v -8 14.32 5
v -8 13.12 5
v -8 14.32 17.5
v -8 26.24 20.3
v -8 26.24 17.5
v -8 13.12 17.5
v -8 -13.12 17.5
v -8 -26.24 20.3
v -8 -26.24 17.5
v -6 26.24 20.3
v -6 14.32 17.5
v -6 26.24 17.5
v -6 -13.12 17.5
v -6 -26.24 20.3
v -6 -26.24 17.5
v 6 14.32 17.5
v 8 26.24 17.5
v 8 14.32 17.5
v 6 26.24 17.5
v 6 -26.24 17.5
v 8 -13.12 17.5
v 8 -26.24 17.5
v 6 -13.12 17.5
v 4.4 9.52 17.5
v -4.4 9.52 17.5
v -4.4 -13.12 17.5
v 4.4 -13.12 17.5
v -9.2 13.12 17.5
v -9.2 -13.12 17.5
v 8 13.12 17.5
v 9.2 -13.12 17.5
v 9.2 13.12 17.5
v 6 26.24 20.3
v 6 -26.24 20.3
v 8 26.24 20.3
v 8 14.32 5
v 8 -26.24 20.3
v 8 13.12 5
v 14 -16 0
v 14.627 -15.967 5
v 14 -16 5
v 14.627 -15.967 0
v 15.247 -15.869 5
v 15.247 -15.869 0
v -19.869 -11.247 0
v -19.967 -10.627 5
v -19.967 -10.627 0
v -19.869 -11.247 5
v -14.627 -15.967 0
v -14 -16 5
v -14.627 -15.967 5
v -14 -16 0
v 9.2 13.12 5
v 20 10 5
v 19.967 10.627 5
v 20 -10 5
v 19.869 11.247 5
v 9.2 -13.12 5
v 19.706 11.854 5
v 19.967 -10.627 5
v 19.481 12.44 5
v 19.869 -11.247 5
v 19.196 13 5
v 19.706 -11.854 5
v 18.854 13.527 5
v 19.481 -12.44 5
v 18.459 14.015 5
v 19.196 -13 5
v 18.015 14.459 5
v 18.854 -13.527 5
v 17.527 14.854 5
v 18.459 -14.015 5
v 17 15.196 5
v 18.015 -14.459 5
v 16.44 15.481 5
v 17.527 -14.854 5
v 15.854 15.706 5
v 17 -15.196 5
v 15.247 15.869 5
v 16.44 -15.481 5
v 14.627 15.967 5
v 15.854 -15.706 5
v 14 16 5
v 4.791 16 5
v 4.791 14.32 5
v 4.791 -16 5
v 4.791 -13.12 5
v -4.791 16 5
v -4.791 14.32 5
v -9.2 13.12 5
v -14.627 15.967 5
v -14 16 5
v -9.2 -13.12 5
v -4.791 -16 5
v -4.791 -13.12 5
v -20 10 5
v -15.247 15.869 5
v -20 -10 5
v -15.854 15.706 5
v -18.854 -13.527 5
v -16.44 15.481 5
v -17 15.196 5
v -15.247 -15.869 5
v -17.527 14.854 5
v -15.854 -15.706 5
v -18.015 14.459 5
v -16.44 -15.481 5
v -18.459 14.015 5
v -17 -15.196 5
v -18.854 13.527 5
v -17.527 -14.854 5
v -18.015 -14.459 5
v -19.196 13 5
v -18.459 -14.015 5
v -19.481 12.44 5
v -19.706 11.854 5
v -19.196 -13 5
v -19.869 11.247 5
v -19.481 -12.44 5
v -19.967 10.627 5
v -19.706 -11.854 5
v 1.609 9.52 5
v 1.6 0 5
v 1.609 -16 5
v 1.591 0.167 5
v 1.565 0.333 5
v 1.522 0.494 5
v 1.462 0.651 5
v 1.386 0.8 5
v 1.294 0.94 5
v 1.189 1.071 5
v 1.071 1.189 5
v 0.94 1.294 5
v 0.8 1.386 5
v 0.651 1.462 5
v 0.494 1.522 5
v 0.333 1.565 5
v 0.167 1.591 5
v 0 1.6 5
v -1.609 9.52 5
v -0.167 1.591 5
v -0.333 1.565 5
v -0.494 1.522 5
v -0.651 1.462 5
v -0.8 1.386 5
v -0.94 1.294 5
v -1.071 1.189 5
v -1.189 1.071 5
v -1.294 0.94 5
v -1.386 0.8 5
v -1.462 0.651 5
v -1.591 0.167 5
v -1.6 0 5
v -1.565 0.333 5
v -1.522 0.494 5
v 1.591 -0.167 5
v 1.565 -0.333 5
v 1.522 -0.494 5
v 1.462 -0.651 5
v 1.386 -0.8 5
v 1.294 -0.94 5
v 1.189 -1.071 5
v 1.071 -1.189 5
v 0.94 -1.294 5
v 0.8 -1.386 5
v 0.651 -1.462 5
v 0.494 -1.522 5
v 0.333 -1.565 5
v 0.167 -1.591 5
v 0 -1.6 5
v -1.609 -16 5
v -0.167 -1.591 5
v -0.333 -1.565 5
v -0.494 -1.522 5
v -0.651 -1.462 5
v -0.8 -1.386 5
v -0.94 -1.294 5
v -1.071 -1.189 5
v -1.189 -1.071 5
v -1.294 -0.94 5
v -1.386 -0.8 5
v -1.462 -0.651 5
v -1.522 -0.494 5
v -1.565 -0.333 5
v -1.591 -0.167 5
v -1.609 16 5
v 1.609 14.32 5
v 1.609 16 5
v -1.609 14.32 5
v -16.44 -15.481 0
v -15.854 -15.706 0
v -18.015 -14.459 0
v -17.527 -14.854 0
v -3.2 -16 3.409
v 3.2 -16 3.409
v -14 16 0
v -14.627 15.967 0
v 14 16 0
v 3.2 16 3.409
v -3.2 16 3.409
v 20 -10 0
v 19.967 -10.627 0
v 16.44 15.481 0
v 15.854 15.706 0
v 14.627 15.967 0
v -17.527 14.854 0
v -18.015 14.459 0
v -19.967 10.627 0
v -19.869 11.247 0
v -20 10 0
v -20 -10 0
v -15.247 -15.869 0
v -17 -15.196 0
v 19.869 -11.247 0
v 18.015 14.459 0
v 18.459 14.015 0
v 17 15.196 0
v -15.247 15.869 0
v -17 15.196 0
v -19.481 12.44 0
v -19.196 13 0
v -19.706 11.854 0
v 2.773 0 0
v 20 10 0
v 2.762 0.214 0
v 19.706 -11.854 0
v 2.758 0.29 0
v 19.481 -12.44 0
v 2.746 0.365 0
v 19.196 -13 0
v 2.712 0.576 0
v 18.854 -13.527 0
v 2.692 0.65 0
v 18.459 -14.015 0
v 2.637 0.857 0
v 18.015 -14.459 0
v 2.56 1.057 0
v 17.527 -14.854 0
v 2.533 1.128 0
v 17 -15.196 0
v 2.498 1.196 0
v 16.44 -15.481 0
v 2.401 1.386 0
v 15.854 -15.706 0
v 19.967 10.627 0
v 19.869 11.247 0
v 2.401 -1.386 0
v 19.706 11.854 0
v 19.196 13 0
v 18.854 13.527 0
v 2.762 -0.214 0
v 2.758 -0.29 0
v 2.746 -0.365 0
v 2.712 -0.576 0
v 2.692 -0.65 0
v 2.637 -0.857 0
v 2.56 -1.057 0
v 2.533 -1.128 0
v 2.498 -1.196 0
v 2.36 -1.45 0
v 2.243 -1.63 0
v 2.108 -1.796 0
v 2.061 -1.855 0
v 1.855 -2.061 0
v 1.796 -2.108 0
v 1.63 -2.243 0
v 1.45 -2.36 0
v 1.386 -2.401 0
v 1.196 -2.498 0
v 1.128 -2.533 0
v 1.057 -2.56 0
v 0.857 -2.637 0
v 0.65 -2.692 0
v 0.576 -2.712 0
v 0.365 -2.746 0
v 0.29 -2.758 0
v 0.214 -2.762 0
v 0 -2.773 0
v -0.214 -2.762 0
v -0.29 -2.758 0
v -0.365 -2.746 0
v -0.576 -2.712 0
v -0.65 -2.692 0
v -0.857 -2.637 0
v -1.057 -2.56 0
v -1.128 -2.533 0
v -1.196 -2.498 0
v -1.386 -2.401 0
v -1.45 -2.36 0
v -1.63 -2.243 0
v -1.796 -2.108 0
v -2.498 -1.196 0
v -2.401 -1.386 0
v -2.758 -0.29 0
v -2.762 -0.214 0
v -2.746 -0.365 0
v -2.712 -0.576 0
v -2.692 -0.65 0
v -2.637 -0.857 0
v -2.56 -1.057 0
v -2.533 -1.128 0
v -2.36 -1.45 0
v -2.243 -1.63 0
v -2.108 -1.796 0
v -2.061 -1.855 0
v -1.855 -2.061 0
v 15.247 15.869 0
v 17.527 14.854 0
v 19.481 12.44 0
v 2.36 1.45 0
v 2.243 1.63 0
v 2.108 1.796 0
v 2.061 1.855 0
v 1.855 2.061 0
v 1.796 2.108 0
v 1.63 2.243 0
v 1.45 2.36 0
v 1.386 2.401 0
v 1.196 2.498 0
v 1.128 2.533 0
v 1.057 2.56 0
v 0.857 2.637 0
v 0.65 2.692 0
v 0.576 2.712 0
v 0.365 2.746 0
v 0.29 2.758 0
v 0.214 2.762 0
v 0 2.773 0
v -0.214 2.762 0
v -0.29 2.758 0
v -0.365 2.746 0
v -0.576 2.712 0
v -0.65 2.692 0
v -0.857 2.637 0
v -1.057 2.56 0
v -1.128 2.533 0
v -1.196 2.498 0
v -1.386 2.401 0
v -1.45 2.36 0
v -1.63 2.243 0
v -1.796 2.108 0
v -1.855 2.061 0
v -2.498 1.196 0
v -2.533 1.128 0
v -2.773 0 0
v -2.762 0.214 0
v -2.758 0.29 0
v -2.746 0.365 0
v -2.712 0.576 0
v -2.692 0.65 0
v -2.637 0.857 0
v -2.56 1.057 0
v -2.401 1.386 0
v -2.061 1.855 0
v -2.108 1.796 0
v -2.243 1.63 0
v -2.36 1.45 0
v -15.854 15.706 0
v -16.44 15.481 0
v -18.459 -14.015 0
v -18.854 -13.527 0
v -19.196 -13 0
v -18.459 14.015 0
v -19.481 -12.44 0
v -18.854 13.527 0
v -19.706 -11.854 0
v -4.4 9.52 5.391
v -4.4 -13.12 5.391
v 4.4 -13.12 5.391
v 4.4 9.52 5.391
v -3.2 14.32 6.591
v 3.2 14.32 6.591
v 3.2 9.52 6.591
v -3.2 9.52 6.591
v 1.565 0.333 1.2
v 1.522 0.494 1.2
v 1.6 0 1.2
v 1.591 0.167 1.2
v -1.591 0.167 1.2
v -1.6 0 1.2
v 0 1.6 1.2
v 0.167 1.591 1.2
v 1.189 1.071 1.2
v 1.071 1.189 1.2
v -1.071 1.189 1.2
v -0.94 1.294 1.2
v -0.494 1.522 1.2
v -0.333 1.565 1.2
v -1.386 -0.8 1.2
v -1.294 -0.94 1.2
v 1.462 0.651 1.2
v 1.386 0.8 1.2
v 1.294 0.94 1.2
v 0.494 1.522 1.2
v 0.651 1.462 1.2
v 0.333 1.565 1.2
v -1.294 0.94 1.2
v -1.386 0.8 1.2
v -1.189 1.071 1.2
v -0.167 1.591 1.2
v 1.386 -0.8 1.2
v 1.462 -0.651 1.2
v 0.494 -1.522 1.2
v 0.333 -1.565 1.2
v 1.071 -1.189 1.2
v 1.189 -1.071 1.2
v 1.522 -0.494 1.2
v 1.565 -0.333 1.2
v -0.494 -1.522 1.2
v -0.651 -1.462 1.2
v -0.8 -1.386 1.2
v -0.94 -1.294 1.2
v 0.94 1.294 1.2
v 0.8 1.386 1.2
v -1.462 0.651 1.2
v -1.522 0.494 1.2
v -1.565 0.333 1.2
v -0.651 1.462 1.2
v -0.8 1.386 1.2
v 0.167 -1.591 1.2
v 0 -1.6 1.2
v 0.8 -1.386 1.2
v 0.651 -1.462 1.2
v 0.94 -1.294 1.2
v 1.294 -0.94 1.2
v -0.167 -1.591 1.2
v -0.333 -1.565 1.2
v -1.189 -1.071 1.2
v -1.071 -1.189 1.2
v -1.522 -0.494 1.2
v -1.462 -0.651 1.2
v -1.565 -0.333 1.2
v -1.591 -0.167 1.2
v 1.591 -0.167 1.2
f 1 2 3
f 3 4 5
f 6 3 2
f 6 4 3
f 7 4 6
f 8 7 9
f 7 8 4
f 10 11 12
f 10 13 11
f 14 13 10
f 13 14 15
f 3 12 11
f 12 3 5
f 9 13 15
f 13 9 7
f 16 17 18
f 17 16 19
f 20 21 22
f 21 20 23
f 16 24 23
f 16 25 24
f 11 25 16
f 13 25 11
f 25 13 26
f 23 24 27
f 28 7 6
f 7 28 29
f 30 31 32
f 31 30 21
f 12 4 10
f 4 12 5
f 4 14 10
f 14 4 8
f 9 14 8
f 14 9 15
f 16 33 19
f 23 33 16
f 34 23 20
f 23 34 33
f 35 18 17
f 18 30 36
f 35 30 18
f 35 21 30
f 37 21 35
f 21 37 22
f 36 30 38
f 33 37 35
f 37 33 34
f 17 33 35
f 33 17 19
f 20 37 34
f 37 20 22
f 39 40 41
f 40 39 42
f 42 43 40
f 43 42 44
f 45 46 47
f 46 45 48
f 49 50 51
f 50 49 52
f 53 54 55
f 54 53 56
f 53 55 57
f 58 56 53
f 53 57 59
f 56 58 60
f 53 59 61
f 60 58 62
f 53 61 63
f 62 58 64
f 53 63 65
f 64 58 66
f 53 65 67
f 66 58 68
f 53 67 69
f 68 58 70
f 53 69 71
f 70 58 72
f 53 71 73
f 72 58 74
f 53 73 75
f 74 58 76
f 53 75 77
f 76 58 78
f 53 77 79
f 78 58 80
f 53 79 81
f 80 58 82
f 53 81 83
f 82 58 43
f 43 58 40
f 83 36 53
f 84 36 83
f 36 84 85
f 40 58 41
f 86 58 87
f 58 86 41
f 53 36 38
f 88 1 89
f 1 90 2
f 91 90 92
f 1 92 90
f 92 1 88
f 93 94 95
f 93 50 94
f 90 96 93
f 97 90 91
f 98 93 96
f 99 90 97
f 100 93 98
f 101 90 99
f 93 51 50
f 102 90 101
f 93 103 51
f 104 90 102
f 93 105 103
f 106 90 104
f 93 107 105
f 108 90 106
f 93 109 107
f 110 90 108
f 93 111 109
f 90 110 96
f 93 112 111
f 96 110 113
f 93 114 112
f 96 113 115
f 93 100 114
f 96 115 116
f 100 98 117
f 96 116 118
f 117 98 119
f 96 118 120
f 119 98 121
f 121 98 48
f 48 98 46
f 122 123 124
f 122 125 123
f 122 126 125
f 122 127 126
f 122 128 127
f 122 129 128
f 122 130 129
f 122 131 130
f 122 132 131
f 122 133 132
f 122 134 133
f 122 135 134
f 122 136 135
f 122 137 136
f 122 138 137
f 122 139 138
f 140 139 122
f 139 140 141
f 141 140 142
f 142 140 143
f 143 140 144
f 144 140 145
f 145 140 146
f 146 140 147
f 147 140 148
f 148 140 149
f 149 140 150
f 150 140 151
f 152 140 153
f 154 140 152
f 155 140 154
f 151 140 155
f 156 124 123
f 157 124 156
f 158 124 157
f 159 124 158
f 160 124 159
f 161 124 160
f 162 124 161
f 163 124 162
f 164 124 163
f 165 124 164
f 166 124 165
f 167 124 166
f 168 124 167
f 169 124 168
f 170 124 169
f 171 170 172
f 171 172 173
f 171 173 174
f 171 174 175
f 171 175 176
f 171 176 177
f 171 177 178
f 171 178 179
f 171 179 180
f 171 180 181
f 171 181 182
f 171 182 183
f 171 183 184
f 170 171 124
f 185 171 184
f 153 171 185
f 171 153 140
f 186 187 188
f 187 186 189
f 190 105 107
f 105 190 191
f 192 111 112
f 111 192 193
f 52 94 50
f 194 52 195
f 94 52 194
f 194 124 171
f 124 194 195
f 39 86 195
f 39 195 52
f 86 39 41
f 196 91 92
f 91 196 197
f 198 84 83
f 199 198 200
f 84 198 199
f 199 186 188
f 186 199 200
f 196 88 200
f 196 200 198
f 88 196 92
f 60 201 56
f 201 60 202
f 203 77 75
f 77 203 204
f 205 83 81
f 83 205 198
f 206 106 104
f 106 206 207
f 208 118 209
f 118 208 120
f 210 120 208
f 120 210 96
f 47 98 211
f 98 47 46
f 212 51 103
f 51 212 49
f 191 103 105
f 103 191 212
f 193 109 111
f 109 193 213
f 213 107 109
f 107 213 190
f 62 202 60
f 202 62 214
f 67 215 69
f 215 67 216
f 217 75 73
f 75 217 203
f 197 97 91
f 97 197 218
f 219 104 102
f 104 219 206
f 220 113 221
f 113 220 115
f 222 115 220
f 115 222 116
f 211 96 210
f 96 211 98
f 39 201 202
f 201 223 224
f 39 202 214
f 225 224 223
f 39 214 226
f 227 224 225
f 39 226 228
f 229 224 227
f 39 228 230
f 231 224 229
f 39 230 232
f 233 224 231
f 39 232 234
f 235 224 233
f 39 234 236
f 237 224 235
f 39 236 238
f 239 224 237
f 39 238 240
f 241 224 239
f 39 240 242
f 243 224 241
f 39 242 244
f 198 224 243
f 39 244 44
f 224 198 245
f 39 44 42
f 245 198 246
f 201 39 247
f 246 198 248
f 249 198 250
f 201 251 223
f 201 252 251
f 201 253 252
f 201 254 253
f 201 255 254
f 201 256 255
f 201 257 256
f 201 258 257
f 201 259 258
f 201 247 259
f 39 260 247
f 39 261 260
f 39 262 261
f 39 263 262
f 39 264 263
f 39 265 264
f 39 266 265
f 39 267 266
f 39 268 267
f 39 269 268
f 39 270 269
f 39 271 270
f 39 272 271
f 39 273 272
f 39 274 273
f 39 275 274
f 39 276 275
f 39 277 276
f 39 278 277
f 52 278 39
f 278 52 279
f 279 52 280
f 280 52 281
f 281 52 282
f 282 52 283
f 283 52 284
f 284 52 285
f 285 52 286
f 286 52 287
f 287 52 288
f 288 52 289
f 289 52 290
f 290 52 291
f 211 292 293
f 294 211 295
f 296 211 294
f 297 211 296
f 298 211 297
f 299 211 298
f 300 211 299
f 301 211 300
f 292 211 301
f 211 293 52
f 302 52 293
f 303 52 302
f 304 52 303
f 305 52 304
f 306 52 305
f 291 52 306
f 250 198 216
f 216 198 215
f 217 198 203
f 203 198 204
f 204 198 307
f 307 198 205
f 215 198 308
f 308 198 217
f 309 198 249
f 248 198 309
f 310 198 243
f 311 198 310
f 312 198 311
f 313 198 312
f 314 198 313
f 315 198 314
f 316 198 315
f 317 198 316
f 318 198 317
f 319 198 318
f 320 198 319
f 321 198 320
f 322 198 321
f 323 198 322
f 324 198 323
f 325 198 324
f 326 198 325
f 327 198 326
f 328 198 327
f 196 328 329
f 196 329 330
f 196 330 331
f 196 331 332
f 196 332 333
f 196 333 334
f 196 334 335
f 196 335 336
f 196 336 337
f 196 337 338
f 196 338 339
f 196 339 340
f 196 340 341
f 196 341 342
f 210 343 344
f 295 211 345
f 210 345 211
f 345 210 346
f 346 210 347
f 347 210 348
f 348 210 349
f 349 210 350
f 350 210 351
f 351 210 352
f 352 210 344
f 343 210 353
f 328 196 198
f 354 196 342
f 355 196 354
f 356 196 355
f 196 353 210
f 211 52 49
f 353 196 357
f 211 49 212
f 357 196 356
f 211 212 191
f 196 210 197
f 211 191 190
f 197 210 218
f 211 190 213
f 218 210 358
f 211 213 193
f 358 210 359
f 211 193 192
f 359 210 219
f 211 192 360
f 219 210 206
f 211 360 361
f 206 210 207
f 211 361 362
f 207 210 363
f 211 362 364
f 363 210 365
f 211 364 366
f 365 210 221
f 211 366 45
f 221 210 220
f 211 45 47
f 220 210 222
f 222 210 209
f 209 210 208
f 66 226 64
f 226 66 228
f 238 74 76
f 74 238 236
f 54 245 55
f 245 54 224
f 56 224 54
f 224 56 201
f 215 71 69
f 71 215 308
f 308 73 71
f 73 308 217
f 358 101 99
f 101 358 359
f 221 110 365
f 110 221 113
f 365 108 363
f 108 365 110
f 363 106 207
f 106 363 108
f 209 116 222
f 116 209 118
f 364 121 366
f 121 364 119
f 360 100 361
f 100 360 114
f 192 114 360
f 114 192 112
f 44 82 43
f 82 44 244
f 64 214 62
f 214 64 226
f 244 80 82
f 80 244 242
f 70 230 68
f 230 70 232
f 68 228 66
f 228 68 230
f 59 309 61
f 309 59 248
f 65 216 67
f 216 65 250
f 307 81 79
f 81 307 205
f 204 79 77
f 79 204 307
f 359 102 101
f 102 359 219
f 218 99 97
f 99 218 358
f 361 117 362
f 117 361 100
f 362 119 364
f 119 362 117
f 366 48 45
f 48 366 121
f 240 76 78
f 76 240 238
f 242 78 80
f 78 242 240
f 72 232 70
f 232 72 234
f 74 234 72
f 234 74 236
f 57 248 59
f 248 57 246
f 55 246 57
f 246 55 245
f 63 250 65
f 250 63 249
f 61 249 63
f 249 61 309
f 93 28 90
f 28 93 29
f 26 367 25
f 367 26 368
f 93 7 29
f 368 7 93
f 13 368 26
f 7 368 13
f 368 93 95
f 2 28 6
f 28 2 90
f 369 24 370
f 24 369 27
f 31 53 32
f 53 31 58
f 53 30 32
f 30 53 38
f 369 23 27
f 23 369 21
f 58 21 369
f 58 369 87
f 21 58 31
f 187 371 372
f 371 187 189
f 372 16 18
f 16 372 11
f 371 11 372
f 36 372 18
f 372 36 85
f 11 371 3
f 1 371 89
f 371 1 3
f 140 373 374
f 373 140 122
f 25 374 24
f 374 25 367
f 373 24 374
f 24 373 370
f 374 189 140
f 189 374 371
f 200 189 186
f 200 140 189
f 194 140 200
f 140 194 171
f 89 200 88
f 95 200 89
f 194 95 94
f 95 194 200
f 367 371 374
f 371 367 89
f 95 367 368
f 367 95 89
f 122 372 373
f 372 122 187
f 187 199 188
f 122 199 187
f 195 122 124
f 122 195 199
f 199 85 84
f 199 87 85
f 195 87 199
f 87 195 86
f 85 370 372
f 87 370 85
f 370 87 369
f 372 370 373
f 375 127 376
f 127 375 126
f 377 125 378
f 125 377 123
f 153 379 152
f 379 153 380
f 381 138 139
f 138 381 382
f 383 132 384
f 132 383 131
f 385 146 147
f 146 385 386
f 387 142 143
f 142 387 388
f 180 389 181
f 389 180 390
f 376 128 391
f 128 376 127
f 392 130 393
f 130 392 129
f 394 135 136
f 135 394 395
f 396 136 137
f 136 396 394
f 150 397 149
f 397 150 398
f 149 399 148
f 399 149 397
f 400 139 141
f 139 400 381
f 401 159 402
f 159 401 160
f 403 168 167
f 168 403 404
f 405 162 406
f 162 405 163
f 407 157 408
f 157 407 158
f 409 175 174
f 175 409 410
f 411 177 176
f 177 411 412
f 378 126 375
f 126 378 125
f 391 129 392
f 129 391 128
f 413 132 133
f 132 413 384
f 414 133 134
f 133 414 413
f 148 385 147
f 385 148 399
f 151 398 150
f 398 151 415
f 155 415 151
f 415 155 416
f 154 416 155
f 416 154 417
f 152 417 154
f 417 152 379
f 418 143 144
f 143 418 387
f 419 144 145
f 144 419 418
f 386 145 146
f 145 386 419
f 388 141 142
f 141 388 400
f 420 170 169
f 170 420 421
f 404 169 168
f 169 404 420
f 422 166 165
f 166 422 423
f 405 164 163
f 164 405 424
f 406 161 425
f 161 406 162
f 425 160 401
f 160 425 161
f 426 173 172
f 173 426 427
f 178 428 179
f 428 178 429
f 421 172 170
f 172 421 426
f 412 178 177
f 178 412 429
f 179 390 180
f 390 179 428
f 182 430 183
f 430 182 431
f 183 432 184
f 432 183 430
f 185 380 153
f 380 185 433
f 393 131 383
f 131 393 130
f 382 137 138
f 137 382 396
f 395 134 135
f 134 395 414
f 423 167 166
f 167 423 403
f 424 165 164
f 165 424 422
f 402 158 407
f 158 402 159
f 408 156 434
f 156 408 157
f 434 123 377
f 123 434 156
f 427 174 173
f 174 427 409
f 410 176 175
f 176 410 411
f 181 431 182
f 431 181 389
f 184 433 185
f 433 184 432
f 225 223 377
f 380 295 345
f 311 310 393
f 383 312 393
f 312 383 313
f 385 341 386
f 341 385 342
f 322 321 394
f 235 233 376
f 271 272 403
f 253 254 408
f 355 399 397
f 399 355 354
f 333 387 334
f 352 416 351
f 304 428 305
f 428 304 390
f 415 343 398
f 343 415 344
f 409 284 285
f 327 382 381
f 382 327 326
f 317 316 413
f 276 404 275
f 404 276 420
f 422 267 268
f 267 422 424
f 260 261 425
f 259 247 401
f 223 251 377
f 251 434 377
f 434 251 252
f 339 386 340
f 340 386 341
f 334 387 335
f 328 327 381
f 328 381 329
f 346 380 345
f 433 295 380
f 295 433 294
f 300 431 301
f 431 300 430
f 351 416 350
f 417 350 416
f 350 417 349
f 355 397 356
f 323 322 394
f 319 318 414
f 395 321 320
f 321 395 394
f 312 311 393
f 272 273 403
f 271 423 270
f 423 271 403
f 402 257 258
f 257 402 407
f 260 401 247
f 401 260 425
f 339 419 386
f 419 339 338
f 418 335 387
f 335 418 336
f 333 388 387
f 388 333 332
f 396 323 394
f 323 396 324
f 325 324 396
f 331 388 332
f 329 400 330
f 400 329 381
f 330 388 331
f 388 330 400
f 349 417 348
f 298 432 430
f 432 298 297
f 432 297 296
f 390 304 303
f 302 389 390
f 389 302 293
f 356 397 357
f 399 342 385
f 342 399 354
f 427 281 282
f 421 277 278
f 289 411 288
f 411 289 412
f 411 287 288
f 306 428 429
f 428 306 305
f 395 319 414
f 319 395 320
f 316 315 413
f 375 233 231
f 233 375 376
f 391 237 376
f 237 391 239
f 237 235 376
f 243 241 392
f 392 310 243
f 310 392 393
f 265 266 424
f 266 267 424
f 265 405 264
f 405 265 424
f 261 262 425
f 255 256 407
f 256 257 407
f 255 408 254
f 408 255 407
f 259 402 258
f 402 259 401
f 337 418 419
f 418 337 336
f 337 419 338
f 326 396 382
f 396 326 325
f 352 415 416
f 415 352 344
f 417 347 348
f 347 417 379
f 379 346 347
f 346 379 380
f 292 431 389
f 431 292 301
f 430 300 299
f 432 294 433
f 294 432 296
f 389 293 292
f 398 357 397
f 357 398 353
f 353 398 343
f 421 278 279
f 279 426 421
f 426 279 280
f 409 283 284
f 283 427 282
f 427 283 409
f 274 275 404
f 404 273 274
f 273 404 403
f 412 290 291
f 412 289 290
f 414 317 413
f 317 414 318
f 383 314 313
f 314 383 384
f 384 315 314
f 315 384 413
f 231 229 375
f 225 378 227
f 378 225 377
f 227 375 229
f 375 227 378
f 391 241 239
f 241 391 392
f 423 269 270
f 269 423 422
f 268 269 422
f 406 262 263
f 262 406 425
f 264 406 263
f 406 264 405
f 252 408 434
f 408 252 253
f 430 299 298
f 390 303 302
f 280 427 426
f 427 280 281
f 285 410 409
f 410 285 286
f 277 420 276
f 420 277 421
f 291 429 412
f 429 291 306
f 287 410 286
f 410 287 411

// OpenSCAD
/*
 * Cold Chain Sensor Cable Clip V2.0 – ABS-R / No-Support Edition
 *
 * Printer  : Ultimaker Method XL
 * Material : ABS-R (1XA Extruder)
 * Support  : NONE (support-free design)
 *
 * ── Design Rules for ABS-R, No Support ─────────────────────────────────────
 *   1. All overhangs ≤ 45° from vertical  → no support needed
 *   2. Open-top U-channel for cable       → no ceiling = no overhang
 *   3. 45° chamfers on all internal edges → self-supporting bridging
 *   4. Minimum wall 2.4 mm               → ABS-R strength requirement
 *   5. No thin cantilevers < 1.6 mm      → prevents curling in heated chamber
 *
 * ── Estimated Print Time (Method XL, Balanced profile) ──────────────────────
 *   ~30–45 min   (0.2 mm layer, 30% infill, no support, with raft)
 *
 * ── Slicer Settings (UltiMaker Cura / CloudPrint) ────────────────────────────
 *   Printer         : Ultimaker Method XL
 *   Extruder        : 1XA (ABS-R)  ← Extruder 1 only, Extruder 2 = NONE
 *   Material        : ABS-R
 *   Profile         : Balanced  (or High Speed if firmware ≥ 2.7.1)
 *   Layer Height    : 0.20 mm
 *   Infill          : 30%  (Gyroid or Cubic)
 *   Walls           : 3 perimeters
 *   Top/Bottom      : 4 layers
 *   Support         : DISABLED (None)
 *   Raft            : ENABLED  ← critical for ABS-R adhesion on Method XL
 *   Raft Air Gap    : 0.26 mm  (default profile value)
 *   Print Speed     : 50 mm/s perimeter  (auto-managed by profile)
 *   Nozzle Temp     : ~240°C  (auto-managed, do NOT override)
 *   Bed Temp        : ~105°C  (auto-managed)
 *   Chamber Temp    : ~70–100°C  (auto-managed, keep door CLOSED)
 *   Part Cooling    : 0% (ABS-R requires 0% cooling; heated chamber handles it)
 *   Orientation     : Flat base face DOWN  ← as modeled, no rotation needed
 *
 * ── After Print ─────────────────────────────────────────────────────────────
 *   - Let cool inside chamber 10 min before opening (prevents warping)
 *   - Remove raft by hand; thin 0.26 mm gap separates cleanly
 *
 * ── Key Dimensions ───────────────────────────────────────────────────────────
 *   Overall    : 40 × 32 × 18 mm
 *   Cable slot : 6 mm wide (fits USB, sensor, power cables)
 *   Mount hole : M3 (D = 3.2 mm) centre-mount
 */

$fn = 60;

// ── Parameters ───────────────────────────────────────────────────────────────
wall       = 2.4;    // Min wall thickness for ABS-R strength
base_w     = 40.0;  // Overall width
base_l     = 32.0;  // Overall depth
base_h     = 5.0;   // Base plate height
arm_h      = 13.0;  // Side arm height (above base)
cable_d    = 6.4;   // Cable channel width (6mm cable + 0.4 tolerance)
mount_d    = 3.2;   // M3 screw clearance
chamfer    = 1.5;   // Internal chamfer size (45° self-supporting)

// ── Render Control ───────────────────────────────────────────────────────────
render_part = "print"; // "print" | "cross_section"

if (render_part == "print")         cable_clip_abs();
if (render_part == "cross_section") {
    difference() {
        cable_clip_abs();
        translate([-50, 0, -1]) cube([100, 100, 60]);
    }
}

// ── Main Module ───────────────────────────────────────────────────────────────
// Open-top U-channel design: cable drops in from above.
// No overhangs > 45°. Safe to print with ABS-R and zero supports.
module cable_clip_abs() {
    difference() {
        union() {
            // [1] Base footprint – full rounded rectangle
            rounded_box(base_w, base_l, base_h, r=6);

            // [2] Left arm  (solid rectangular arm, fully vertical → 0° overhang)
            translate([-(cable_d/2 + wall + wall/2), 0, base_h + arm_h/2 - 0.5])
            cube([wall * 2, base_l * 0.82, arm_h], center=true);

            // [3] Right arm (mirror)
            translate([ (cable_d/2 + wall + wall/2), 0, base_h + arm_h/2 - 0.5])
            cube([wall * 2, base_l * 0.82, arm_h], center=true);

            // [4] Rear bridge – connects arms at the back (vertical face = 0° overhang)
            translate([0, base_l * 0.41 - wall/2, base_h + arm_h/2 - 0.5])
            cube([cable_d + wall * 4, wall * 2, arm_h], center=true);

            // [5] Retention lip – two small inward-pointing teeth at arm tops
            //     45° chamfered underside → self-supporting, no support needed
            lip_offset_x = cable_d/2 + wall * 2;
            lip_h        = 2.8;
            lip_w        = 2.0;
            lip_top_z    = base_h + arm_h - 0.5;

            for (sx = [-1, 1]) {
                translate([sx * (cable_d/2 + wall * 2), 0, lip_top_z])
                // Tapered tooth: wide at base, tip at cable_d/2 – 0.4
                lip_tooth(sx, lip_w, lip_h);
            }
        }

        // ── Subtractions ─────────────────────────────────────────────────────

        // [A] M3 centre screw hole (straight cylinder = 0° overhang)
        translate([0, 0, -1])
        cylinder(h=base_h + 3, d=mount_d);

        // [B] M3 countersink recess on bottom face (wide → narrow = 0° overhang)
        translate([0, 0, -1])
        cylinder(h=2.2, d1=7.5, d2=mount_d);

        // [C] 45° internal chamfer at base of U-channel to ease cable insertion
        //     (two 45° triangular prisms on left and right inner walls)
        for (sx = [-1, 1]) {
            translate([sx * cable_d/2, 0, base_h])
            rotate([0, sx * -45, 0])
            cube([chamfer * 1.5, base_l + 2, chamfer * 1.5], center=true);
        }

        // [D] Label engraving on the rear bridge face – flush text, no overhang
        translate([0, base_l/2 - 0.4, base_h + arm_h/2])
        rotate([90, 0, 0])
        linear_extrude(0.8)
        text("CC", size=5.5, font="Arial:style=Bold",
             halign="center", valign="center");
    }
}

// ── Retention Lip Tooth ───────────────────────────────────────────────────────
// A wedge-shaped retention tooth. The underside is a 45° chamfer, so it is
// perfectly self-supporting (no support material required).
// sx = +1 (right arm) or -1 (left arm)
module lip_tooth(sx, w, h) {
    // Wedge: wide on arm side, narrows toward cable centre
    rotate([0, 0, 0])
    linear_extrude(height=h)
    polygon(points=[
        [0,           -w * base_l * 0.41],
        [sx * w * -1, -w * base_l * 0.41],
        [sx * w * -1,  w * base_l * 0.41],
        [0,            w * base_l * 0.41]
    ]);
}

// ── Utility ───────────────────────────────────────────────────────────────────
module rounded_box(w, l, h, r) {
    translate([0, 0, h/2])
    linear_extrude(height=h, center=true)
    offset(r=r)
    square([w - r*2, l - r*2], center=true);
}
